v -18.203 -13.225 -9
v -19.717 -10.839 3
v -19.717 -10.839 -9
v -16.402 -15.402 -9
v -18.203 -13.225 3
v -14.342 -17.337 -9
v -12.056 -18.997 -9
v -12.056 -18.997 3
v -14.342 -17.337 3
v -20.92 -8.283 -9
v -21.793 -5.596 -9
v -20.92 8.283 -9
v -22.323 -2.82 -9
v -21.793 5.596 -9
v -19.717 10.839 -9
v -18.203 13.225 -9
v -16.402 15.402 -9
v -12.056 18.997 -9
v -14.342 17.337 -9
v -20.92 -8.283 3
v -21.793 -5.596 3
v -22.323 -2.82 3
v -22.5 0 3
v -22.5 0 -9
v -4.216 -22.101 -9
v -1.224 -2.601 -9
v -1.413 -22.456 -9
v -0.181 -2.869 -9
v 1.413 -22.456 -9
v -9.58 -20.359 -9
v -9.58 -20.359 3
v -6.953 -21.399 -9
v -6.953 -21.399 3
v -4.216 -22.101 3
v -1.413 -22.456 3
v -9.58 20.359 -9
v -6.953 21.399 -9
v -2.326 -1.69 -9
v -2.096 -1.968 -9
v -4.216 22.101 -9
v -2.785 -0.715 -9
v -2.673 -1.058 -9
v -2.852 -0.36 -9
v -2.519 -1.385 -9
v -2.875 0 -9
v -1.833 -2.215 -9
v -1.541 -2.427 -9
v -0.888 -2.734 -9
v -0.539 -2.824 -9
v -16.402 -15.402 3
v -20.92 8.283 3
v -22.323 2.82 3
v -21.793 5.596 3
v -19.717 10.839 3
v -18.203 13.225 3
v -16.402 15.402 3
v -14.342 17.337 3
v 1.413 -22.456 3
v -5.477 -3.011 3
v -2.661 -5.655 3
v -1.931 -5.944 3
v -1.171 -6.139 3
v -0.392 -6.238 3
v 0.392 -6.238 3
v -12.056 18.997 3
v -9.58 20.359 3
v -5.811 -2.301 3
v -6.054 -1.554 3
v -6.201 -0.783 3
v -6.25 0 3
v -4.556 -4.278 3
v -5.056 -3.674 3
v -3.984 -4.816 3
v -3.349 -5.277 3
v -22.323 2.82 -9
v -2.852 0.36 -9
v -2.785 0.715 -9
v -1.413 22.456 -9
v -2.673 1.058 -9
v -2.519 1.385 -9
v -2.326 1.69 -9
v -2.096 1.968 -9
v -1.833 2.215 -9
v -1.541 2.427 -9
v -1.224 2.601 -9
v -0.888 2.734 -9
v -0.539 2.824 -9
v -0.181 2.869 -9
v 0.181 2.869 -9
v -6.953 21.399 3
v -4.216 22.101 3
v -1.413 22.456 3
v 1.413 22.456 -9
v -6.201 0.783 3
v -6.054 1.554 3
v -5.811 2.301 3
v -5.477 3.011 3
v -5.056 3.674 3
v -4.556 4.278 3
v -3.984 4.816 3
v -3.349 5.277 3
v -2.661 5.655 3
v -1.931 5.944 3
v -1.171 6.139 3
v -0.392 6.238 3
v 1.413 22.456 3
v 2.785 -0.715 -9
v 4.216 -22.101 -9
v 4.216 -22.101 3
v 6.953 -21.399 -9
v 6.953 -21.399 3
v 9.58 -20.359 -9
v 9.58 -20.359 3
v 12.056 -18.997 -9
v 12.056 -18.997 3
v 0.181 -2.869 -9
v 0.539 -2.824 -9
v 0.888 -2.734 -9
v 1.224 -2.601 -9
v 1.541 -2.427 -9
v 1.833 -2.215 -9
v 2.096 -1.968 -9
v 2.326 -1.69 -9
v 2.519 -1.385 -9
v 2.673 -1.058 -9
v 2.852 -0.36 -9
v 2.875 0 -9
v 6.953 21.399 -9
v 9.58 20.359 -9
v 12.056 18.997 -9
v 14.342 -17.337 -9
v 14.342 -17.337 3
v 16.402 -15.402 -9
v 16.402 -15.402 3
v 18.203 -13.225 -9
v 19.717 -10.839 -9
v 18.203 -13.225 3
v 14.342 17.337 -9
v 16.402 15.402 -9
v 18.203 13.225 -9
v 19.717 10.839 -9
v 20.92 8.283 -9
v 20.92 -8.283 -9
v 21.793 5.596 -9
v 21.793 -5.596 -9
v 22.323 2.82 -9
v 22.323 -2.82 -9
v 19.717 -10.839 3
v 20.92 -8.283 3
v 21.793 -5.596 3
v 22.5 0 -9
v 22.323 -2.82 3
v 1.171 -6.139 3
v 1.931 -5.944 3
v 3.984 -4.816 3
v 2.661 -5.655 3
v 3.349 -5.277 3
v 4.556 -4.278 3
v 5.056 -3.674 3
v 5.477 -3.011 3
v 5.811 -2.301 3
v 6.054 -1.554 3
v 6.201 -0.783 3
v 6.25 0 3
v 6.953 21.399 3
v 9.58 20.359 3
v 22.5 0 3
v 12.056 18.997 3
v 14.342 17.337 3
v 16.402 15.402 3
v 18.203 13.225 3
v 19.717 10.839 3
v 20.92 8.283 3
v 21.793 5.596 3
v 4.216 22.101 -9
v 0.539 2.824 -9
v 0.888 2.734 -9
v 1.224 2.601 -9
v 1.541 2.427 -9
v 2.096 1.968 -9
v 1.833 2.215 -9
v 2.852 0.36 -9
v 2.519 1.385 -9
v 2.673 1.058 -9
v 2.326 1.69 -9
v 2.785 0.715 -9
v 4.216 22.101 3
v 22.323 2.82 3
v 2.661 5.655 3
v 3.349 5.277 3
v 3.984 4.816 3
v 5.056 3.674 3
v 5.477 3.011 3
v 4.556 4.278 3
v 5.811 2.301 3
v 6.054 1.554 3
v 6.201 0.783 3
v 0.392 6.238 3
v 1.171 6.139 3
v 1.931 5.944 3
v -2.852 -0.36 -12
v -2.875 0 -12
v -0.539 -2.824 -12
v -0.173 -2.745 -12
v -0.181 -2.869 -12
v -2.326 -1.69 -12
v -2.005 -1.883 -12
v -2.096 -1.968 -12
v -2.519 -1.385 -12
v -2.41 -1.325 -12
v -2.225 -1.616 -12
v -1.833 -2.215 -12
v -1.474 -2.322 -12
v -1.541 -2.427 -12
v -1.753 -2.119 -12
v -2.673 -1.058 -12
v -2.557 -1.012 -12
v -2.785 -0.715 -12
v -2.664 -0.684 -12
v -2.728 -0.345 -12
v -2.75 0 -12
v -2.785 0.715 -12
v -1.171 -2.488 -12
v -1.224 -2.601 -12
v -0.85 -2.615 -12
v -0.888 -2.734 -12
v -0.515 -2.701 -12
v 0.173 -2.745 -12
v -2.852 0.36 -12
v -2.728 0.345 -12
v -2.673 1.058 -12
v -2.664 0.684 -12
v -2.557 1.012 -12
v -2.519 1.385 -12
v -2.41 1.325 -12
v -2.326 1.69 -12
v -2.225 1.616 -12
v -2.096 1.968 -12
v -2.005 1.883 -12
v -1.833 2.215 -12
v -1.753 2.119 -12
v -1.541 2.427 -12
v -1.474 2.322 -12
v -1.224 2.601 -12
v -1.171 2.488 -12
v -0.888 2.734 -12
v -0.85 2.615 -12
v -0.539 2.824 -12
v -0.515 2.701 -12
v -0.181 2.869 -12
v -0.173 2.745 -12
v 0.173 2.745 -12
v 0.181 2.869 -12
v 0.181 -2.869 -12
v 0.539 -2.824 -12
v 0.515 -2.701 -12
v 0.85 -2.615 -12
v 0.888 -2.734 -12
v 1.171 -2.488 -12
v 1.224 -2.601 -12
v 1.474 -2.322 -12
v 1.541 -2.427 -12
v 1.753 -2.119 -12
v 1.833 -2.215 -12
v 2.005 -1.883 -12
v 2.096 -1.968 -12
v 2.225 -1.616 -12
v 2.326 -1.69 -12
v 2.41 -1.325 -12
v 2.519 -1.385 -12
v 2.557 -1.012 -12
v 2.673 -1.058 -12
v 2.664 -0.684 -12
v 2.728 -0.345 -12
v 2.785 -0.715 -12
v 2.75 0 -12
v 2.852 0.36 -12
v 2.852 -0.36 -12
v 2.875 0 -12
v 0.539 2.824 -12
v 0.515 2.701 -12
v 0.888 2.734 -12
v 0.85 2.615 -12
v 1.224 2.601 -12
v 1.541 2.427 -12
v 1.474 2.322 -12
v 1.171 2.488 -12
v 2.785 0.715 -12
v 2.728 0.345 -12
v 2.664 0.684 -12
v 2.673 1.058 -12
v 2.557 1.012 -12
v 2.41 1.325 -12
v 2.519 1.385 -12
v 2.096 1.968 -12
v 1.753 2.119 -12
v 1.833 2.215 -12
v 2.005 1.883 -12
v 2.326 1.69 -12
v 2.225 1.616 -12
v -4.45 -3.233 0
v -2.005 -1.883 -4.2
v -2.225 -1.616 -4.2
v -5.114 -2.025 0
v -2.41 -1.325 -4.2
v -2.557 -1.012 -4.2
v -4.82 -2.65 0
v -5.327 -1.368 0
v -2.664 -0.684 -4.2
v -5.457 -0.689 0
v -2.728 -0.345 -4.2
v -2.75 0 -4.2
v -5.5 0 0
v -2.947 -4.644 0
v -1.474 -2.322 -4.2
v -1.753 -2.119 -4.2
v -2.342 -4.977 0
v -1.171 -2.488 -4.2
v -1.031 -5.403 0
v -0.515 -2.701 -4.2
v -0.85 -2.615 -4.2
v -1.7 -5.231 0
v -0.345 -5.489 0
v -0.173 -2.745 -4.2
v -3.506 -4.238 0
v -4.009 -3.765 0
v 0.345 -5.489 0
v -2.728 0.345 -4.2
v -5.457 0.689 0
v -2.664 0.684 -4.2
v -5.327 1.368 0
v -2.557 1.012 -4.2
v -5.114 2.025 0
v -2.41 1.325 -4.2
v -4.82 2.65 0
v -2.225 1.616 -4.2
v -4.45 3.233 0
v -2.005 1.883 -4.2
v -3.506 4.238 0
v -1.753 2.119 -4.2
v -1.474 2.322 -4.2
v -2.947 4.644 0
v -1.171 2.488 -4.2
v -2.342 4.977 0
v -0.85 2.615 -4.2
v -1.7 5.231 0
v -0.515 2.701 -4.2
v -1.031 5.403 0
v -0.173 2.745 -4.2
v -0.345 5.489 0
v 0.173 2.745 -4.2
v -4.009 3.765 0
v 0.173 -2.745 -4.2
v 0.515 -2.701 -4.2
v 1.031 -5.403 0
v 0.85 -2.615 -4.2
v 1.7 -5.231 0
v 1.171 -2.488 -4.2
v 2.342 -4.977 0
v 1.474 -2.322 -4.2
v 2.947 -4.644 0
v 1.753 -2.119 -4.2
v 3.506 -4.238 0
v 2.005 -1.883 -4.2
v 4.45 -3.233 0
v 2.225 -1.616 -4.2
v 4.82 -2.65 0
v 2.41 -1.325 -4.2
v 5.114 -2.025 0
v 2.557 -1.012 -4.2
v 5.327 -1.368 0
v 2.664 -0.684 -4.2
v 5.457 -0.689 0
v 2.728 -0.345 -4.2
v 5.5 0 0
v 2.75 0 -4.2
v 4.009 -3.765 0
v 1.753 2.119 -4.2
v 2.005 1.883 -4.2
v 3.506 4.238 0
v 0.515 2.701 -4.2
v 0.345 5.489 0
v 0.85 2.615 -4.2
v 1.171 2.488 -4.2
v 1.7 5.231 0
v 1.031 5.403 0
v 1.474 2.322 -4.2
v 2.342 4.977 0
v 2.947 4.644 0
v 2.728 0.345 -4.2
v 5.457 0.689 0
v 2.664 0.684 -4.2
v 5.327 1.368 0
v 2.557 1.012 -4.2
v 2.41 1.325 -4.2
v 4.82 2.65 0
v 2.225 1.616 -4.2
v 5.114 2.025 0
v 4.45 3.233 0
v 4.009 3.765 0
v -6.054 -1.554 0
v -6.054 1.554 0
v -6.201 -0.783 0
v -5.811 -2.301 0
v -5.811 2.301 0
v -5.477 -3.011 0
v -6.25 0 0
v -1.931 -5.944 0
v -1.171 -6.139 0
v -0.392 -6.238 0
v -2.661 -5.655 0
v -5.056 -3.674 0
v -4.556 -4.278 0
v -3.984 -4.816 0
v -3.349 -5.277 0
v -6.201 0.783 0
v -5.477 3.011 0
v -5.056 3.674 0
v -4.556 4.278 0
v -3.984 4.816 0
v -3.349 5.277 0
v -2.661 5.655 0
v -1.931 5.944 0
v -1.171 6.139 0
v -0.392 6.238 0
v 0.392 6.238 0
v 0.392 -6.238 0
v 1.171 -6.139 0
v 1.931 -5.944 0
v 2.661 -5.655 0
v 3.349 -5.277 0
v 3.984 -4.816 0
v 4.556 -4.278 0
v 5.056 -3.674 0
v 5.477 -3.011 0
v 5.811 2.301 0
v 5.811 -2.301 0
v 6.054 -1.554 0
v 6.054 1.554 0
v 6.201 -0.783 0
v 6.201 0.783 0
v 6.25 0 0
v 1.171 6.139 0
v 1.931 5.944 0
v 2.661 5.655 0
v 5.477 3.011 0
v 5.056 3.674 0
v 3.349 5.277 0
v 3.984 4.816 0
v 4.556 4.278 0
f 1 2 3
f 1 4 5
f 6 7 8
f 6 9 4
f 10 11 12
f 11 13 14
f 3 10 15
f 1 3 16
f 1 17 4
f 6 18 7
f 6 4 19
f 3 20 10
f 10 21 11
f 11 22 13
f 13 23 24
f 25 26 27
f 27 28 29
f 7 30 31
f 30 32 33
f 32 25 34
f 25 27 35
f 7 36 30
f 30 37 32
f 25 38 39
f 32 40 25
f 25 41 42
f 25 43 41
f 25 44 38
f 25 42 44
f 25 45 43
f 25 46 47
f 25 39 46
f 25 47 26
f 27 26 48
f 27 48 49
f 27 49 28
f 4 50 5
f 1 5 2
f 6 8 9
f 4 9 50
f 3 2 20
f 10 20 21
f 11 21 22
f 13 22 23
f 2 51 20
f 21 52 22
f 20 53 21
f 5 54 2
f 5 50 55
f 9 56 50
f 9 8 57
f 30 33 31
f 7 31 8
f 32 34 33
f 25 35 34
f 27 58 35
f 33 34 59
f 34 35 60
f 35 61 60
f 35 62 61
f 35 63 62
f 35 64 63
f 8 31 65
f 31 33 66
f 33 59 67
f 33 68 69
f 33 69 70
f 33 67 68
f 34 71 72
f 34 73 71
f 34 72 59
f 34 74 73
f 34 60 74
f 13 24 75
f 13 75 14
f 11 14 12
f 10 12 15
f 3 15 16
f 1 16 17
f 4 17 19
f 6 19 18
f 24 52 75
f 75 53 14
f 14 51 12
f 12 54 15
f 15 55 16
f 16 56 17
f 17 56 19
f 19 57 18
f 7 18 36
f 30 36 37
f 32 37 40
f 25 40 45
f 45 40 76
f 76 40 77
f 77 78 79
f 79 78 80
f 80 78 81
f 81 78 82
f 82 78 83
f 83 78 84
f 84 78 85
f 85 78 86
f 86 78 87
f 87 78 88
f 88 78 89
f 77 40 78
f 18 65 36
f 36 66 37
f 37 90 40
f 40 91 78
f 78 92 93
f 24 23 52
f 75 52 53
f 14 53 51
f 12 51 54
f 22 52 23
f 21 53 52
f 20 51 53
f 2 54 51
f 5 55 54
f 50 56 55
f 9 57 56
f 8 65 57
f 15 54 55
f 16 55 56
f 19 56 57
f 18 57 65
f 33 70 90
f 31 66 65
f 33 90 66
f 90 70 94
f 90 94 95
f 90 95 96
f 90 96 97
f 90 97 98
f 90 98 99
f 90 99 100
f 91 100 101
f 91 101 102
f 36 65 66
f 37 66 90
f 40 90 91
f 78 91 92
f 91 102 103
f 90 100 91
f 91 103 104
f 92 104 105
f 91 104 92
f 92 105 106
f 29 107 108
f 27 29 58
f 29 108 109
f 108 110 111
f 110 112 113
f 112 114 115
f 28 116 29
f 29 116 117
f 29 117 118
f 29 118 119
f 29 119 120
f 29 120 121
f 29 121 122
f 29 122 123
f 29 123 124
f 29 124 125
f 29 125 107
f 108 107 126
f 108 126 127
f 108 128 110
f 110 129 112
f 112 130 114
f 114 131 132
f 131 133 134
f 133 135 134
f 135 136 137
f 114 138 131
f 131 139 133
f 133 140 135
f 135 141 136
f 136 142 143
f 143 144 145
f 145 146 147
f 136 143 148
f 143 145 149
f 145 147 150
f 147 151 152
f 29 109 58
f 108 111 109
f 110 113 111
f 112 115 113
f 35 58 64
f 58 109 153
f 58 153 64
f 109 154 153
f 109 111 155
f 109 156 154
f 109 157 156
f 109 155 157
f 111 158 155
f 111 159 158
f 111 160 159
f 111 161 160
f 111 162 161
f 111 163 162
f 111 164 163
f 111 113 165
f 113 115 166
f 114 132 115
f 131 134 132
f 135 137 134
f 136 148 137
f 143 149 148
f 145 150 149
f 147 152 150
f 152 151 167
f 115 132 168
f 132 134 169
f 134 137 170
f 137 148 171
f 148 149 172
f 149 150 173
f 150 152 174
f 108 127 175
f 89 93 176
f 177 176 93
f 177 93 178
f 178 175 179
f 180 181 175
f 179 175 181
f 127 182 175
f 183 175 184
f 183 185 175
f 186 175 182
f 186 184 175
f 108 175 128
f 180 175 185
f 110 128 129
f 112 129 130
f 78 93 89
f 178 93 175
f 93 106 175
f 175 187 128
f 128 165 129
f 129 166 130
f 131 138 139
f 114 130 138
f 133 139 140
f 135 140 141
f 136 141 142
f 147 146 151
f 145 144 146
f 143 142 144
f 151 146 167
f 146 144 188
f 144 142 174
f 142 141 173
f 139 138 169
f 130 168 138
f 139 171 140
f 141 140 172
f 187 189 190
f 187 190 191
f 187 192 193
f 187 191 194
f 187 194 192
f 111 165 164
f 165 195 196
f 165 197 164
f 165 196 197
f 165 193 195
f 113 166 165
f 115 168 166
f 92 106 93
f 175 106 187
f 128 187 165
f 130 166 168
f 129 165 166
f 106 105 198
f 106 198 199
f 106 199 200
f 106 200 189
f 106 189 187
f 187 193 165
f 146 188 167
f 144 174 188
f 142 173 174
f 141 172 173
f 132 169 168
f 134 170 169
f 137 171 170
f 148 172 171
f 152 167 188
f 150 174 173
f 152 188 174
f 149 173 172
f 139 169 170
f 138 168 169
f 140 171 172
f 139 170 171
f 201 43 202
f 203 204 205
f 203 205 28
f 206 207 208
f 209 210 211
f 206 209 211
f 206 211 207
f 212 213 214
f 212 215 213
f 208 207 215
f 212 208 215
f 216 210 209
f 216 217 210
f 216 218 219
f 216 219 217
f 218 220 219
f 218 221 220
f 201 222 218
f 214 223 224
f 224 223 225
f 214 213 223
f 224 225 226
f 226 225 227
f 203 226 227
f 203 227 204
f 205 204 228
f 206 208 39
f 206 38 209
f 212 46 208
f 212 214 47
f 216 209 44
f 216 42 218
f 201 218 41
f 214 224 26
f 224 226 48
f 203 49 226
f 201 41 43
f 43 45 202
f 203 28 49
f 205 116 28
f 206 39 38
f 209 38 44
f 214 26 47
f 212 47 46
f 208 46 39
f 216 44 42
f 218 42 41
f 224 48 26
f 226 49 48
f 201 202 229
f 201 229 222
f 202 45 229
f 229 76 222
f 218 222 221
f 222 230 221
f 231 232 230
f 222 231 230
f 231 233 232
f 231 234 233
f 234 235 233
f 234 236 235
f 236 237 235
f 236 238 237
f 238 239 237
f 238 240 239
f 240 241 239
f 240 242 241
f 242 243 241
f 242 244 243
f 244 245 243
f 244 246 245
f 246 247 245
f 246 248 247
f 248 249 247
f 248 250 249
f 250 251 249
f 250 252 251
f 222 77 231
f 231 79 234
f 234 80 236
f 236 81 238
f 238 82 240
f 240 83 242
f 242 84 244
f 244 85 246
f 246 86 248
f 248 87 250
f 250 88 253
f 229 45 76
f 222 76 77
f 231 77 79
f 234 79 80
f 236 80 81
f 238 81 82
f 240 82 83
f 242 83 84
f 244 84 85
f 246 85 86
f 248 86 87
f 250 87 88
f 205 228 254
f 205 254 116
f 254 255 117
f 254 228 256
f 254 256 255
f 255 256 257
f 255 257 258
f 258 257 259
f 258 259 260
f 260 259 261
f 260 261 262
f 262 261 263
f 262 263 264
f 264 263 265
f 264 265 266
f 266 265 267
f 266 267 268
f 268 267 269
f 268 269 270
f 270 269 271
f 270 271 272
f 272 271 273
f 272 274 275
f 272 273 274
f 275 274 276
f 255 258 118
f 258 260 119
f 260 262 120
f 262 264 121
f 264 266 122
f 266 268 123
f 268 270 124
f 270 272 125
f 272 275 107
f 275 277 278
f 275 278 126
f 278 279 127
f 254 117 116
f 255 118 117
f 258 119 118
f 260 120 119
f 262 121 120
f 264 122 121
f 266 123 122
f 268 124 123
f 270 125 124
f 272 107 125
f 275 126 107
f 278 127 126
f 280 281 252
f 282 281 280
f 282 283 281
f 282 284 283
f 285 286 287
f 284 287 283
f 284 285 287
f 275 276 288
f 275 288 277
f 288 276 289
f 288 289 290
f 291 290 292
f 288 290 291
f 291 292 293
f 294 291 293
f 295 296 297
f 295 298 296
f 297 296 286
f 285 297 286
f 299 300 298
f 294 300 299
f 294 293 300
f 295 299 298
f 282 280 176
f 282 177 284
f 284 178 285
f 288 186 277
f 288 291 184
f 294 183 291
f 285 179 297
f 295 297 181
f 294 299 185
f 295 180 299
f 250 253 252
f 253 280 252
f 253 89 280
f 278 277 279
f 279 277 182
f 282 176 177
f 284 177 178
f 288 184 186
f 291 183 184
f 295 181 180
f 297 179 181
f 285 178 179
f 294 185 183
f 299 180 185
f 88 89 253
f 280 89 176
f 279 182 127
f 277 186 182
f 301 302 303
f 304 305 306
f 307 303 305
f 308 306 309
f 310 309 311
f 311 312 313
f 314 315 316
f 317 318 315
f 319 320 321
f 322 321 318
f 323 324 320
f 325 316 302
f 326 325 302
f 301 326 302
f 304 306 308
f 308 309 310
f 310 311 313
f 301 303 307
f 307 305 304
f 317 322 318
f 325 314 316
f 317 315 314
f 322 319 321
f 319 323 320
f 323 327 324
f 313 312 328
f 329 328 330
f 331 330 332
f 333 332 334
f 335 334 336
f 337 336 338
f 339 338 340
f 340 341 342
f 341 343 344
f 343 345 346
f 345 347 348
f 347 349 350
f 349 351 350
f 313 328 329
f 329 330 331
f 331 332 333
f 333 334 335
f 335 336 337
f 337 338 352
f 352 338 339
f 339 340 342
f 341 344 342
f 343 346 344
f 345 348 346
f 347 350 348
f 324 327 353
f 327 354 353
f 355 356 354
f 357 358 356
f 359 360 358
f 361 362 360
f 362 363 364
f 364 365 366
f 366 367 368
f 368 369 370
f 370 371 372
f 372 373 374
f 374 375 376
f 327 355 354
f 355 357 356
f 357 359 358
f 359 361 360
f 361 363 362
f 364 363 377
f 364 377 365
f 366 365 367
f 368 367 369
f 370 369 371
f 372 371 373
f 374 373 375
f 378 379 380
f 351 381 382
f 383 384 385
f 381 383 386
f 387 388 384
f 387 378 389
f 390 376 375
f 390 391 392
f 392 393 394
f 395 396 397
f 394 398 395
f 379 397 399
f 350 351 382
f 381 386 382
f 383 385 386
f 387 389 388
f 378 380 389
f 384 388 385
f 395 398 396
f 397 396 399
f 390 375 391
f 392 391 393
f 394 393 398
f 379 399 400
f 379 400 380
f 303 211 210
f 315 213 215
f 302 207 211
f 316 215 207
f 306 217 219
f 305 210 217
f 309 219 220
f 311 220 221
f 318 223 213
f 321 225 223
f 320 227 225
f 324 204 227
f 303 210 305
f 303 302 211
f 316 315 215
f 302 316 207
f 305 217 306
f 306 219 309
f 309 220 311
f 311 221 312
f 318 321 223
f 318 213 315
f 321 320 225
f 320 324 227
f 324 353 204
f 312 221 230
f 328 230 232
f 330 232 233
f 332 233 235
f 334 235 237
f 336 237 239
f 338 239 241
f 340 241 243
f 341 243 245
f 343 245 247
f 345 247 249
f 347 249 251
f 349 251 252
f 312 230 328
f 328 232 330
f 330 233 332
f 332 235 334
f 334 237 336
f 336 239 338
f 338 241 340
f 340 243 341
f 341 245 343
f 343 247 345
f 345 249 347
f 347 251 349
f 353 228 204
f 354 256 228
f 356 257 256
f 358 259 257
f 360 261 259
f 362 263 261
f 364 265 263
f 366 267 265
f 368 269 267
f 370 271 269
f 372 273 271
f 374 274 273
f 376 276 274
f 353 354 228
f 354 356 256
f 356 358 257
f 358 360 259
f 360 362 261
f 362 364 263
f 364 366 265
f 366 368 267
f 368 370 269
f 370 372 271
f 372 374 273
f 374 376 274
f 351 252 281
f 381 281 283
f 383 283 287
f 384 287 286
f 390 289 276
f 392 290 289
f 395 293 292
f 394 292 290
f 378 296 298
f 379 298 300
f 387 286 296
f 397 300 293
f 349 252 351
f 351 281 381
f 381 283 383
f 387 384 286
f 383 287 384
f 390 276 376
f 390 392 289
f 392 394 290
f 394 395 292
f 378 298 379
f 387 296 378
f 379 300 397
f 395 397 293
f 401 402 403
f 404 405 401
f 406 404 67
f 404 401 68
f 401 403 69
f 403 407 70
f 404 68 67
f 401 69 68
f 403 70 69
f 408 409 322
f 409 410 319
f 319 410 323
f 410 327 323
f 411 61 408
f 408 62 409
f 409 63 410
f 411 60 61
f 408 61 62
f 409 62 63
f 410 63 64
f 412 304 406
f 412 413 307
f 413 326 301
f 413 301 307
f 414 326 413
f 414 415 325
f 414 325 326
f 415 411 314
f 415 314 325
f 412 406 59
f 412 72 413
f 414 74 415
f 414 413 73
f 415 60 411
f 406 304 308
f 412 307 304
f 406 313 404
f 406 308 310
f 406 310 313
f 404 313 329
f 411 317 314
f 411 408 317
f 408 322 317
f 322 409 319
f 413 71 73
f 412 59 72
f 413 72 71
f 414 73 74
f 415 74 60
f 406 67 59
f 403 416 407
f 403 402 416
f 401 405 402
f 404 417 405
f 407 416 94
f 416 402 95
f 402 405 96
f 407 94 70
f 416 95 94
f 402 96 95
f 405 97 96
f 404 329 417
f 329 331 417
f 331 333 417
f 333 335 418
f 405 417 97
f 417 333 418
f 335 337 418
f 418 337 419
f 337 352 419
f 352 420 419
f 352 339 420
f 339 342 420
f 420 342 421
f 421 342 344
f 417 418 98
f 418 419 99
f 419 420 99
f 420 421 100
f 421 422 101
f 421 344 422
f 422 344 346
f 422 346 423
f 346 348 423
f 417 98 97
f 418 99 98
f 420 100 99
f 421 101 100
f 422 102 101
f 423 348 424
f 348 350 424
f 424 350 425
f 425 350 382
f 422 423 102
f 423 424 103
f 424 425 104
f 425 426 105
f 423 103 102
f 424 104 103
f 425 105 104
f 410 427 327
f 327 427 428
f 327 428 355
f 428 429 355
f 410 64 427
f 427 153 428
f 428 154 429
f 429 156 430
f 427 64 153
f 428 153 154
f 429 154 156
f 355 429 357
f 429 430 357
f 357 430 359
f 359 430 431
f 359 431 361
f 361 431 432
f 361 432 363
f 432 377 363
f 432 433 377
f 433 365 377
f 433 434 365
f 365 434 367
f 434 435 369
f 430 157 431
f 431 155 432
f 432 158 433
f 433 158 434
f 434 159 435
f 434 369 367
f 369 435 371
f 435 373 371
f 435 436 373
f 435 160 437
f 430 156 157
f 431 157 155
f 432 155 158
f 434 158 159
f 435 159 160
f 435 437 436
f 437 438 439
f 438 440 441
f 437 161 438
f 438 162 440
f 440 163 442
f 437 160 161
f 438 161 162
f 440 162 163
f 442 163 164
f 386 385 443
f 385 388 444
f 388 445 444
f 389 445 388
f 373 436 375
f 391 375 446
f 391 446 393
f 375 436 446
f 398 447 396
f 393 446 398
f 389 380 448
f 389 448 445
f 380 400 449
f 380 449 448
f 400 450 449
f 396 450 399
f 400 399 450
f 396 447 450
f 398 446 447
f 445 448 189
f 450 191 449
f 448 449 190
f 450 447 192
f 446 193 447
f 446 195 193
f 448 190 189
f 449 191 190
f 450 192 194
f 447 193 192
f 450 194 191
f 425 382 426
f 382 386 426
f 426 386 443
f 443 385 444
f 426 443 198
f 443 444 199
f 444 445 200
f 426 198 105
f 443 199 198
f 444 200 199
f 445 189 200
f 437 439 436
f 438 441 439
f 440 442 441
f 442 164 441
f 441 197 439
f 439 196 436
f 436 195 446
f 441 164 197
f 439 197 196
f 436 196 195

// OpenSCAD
$fn = 50;


difference() {
	union() {
		translate(v = [0, 0, -9.0000000000]) {
			cylinder(h = 12, r = 22.5000000000);
		}
		#translate(v = [0, 0, -12.0000000000]) {
			cylinder(h = 12, r = 2.8750000000);
		}
	}
	union() {
		translate(v = [0, 0, 0]) {
			rotate(a = [0, 0, 0]) {
				difference() {
					union() {
						translate(v = [0, 0, -12.0000000000]) {
							cylinder(h = 12, r = 2.2500000000);
						}
						translate(v = [0, 0, -4.2000000000]) {
							cylinder(h = 4.2000000000, r1 = 2.7500000000, r2 = 5.5000000000);
						}
						translate(v = [0, 0, -12.0000000000]) {
							cylinder(h = 12, r = 2.7500000000);
						}
						translate(v = [0, 0, -12.0000000000]) {
							cylinder(h = 12, r = 2.2500000000);
						}
					}
					union();
				}
			}
		}
		#cylinder(h = 3, r = 6.2500000000);
	}
}
